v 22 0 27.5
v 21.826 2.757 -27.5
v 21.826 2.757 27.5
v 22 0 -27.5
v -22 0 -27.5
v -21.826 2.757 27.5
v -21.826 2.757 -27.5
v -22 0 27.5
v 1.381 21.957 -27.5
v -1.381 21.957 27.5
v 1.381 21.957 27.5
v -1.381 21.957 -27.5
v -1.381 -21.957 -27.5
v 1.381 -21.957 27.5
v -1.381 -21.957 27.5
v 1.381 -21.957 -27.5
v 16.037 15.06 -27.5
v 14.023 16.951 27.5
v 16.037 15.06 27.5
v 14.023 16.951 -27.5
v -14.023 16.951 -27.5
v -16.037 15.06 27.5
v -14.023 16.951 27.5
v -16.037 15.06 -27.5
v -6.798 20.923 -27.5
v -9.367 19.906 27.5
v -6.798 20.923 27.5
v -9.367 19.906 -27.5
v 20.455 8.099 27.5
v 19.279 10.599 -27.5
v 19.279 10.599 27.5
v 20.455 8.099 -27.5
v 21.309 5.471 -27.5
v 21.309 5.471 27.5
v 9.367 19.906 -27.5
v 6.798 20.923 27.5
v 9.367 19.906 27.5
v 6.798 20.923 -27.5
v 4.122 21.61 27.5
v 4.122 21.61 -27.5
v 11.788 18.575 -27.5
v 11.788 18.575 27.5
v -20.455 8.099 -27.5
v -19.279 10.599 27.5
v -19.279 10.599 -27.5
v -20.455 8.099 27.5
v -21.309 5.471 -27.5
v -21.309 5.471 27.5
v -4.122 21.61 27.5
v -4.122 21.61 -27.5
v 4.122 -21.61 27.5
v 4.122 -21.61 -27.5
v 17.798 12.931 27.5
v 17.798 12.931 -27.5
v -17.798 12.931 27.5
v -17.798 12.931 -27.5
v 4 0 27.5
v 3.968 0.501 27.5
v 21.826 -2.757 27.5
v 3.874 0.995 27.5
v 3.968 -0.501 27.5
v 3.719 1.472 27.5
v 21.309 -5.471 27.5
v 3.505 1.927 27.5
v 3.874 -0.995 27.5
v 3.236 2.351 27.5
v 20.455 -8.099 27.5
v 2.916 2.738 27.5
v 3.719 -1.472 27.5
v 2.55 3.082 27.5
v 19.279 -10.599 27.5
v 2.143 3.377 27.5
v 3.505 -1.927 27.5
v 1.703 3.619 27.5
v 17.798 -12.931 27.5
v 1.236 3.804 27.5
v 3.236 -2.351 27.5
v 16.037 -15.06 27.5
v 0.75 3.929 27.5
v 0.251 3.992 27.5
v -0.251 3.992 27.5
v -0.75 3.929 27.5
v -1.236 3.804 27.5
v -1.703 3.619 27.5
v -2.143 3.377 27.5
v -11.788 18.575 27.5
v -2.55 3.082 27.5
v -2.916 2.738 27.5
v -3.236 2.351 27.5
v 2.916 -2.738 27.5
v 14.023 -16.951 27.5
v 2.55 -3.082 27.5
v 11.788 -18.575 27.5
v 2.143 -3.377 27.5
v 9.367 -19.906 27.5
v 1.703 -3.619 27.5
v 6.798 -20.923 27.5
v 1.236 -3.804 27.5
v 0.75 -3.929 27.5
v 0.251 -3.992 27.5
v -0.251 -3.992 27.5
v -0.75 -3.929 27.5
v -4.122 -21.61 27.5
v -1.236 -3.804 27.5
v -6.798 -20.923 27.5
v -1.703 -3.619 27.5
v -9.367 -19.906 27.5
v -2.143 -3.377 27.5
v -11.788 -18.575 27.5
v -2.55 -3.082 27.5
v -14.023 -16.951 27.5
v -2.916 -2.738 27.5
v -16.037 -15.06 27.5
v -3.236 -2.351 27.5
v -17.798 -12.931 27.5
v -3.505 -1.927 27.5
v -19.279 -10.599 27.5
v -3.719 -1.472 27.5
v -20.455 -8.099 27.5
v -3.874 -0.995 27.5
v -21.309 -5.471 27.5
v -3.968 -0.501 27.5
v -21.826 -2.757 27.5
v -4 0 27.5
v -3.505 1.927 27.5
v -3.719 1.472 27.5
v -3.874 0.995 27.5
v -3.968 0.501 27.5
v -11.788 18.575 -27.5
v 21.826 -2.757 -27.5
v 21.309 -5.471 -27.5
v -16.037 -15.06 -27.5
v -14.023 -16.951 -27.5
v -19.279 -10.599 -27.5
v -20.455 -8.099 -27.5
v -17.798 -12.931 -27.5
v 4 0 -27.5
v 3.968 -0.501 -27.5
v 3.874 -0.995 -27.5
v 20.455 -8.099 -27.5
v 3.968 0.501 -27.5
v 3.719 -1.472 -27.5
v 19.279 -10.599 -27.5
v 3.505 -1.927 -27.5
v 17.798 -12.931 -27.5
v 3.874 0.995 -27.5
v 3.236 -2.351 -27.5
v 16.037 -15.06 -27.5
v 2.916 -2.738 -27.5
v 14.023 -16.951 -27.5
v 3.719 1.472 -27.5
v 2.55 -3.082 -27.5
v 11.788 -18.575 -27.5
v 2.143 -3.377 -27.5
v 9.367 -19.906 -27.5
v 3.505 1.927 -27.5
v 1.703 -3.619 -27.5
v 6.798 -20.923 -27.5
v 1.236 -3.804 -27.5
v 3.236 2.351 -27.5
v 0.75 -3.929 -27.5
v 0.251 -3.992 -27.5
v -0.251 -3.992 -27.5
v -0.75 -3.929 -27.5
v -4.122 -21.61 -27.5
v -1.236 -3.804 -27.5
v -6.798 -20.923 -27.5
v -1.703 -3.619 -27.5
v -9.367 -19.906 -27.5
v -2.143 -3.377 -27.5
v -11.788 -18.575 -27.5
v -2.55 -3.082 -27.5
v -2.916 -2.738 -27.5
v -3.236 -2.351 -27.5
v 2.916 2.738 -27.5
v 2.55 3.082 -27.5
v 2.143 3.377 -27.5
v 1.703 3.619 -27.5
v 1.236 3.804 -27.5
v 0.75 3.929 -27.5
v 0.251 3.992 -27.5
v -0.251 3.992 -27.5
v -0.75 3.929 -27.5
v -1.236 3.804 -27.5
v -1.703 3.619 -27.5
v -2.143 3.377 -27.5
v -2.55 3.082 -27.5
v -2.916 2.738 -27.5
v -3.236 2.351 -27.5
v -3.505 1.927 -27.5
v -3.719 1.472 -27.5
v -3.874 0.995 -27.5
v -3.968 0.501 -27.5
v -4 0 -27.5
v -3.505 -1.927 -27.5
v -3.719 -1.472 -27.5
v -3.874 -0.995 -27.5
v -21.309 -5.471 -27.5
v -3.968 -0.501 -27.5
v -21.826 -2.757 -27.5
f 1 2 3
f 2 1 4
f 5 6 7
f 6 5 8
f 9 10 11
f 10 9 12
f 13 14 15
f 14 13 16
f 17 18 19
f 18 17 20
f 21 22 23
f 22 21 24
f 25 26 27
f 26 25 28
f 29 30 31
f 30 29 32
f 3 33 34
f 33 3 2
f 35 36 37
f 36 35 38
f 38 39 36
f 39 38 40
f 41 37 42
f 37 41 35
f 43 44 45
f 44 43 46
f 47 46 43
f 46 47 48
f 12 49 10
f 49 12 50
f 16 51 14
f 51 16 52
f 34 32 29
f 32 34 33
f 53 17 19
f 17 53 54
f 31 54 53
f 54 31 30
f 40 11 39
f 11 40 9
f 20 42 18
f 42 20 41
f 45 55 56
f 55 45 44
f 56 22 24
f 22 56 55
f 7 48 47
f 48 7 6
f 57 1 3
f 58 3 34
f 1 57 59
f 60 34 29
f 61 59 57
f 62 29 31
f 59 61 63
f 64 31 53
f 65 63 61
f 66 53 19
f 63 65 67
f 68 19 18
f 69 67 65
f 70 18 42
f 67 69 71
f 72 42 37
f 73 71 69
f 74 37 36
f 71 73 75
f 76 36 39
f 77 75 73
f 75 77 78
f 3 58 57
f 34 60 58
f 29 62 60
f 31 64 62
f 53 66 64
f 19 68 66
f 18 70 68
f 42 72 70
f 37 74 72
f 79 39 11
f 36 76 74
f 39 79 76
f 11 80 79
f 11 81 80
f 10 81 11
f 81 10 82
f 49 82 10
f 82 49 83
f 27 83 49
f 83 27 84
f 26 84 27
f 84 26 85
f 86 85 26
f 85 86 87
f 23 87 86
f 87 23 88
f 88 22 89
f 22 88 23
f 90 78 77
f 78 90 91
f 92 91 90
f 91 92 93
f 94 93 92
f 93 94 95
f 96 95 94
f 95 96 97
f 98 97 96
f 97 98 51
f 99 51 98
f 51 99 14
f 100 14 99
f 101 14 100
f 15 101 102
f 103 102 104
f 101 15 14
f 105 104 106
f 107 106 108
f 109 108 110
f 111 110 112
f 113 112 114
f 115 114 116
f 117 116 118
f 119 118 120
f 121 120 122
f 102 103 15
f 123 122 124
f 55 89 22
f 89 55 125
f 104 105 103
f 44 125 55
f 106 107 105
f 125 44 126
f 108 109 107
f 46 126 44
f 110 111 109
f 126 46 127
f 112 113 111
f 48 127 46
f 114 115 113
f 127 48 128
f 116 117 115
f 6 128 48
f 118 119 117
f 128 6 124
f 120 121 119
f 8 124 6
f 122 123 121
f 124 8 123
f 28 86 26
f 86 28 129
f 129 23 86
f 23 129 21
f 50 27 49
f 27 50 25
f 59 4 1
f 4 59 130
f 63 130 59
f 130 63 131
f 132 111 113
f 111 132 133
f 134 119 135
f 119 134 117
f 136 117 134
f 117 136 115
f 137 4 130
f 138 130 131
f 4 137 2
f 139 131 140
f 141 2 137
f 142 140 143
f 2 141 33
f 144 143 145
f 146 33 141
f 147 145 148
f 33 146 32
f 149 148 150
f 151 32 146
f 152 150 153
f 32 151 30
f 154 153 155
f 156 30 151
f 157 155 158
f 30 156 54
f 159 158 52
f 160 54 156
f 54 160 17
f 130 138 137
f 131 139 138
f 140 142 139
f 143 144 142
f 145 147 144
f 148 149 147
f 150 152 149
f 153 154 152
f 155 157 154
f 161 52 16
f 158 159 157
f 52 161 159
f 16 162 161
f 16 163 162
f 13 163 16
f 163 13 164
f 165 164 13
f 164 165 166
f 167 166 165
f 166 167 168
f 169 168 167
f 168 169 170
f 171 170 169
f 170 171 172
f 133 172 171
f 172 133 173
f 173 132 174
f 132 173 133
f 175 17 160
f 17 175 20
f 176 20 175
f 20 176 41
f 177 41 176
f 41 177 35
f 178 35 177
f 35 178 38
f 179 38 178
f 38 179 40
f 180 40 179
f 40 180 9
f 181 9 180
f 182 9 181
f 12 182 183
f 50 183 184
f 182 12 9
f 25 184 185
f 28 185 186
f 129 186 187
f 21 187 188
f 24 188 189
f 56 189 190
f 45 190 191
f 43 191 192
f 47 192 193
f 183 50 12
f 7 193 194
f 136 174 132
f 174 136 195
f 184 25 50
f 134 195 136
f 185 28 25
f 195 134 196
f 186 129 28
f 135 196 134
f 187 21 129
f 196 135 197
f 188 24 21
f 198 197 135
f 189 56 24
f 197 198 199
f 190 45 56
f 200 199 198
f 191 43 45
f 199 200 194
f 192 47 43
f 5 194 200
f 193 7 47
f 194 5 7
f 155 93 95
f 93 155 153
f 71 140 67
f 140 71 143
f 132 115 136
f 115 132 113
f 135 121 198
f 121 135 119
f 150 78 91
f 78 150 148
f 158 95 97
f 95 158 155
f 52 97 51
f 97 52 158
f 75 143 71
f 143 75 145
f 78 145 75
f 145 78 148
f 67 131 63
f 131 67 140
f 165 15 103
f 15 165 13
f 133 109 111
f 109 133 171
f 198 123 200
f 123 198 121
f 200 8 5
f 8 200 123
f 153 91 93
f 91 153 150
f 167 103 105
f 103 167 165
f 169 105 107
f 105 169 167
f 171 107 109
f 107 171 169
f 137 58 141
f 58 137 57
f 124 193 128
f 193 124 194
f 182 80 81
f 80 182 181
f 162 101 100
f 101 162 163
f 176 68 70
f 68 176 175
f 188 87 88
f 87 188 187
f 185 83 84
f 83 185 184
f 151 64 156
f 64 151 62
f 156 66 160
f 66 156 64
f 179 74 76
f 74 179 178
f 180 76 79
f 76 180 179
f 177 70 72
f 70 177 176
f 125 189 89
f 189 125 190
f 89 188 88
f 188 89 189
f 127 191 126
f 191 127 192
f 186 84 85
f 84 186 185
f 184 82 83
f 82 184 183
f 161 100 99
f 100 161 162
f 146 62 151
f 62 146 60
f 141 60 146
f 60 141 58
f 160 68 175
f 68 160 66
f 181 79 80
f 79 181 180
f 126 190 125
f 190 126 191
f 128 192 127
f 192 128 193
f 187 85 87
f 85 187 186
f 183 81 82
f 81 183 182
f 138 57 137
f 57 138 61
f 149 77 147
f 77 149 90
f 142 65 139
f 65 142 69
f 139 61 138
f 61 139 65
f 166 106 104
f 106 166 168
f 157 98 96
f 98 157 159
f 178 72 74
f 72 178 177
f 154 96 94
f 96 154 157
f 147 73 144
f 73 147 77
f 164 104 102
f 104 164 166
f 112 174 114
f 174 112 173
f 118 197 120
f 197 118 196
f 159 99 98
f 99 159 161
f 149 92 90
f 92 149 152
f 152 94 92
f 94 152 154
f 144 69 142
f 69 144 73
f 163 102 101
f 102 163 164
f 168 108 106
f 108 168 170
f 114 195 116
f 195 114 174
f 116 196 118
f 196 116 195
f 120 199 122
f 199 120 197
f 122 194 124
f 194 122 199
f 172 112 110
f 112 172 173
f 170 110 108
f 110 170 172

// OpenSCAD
$fn = 50;


difference() {
	union() {
		translate(v = [0, 0, -27.5000000000]) {
			cylinder(h = 55, r = 22.0000000000);
		}
	}
	union() {
		translate(v = [0, 0, -100.0000000000]) {
			cylinder(h = 200, r = 4);
		}
	}
}
